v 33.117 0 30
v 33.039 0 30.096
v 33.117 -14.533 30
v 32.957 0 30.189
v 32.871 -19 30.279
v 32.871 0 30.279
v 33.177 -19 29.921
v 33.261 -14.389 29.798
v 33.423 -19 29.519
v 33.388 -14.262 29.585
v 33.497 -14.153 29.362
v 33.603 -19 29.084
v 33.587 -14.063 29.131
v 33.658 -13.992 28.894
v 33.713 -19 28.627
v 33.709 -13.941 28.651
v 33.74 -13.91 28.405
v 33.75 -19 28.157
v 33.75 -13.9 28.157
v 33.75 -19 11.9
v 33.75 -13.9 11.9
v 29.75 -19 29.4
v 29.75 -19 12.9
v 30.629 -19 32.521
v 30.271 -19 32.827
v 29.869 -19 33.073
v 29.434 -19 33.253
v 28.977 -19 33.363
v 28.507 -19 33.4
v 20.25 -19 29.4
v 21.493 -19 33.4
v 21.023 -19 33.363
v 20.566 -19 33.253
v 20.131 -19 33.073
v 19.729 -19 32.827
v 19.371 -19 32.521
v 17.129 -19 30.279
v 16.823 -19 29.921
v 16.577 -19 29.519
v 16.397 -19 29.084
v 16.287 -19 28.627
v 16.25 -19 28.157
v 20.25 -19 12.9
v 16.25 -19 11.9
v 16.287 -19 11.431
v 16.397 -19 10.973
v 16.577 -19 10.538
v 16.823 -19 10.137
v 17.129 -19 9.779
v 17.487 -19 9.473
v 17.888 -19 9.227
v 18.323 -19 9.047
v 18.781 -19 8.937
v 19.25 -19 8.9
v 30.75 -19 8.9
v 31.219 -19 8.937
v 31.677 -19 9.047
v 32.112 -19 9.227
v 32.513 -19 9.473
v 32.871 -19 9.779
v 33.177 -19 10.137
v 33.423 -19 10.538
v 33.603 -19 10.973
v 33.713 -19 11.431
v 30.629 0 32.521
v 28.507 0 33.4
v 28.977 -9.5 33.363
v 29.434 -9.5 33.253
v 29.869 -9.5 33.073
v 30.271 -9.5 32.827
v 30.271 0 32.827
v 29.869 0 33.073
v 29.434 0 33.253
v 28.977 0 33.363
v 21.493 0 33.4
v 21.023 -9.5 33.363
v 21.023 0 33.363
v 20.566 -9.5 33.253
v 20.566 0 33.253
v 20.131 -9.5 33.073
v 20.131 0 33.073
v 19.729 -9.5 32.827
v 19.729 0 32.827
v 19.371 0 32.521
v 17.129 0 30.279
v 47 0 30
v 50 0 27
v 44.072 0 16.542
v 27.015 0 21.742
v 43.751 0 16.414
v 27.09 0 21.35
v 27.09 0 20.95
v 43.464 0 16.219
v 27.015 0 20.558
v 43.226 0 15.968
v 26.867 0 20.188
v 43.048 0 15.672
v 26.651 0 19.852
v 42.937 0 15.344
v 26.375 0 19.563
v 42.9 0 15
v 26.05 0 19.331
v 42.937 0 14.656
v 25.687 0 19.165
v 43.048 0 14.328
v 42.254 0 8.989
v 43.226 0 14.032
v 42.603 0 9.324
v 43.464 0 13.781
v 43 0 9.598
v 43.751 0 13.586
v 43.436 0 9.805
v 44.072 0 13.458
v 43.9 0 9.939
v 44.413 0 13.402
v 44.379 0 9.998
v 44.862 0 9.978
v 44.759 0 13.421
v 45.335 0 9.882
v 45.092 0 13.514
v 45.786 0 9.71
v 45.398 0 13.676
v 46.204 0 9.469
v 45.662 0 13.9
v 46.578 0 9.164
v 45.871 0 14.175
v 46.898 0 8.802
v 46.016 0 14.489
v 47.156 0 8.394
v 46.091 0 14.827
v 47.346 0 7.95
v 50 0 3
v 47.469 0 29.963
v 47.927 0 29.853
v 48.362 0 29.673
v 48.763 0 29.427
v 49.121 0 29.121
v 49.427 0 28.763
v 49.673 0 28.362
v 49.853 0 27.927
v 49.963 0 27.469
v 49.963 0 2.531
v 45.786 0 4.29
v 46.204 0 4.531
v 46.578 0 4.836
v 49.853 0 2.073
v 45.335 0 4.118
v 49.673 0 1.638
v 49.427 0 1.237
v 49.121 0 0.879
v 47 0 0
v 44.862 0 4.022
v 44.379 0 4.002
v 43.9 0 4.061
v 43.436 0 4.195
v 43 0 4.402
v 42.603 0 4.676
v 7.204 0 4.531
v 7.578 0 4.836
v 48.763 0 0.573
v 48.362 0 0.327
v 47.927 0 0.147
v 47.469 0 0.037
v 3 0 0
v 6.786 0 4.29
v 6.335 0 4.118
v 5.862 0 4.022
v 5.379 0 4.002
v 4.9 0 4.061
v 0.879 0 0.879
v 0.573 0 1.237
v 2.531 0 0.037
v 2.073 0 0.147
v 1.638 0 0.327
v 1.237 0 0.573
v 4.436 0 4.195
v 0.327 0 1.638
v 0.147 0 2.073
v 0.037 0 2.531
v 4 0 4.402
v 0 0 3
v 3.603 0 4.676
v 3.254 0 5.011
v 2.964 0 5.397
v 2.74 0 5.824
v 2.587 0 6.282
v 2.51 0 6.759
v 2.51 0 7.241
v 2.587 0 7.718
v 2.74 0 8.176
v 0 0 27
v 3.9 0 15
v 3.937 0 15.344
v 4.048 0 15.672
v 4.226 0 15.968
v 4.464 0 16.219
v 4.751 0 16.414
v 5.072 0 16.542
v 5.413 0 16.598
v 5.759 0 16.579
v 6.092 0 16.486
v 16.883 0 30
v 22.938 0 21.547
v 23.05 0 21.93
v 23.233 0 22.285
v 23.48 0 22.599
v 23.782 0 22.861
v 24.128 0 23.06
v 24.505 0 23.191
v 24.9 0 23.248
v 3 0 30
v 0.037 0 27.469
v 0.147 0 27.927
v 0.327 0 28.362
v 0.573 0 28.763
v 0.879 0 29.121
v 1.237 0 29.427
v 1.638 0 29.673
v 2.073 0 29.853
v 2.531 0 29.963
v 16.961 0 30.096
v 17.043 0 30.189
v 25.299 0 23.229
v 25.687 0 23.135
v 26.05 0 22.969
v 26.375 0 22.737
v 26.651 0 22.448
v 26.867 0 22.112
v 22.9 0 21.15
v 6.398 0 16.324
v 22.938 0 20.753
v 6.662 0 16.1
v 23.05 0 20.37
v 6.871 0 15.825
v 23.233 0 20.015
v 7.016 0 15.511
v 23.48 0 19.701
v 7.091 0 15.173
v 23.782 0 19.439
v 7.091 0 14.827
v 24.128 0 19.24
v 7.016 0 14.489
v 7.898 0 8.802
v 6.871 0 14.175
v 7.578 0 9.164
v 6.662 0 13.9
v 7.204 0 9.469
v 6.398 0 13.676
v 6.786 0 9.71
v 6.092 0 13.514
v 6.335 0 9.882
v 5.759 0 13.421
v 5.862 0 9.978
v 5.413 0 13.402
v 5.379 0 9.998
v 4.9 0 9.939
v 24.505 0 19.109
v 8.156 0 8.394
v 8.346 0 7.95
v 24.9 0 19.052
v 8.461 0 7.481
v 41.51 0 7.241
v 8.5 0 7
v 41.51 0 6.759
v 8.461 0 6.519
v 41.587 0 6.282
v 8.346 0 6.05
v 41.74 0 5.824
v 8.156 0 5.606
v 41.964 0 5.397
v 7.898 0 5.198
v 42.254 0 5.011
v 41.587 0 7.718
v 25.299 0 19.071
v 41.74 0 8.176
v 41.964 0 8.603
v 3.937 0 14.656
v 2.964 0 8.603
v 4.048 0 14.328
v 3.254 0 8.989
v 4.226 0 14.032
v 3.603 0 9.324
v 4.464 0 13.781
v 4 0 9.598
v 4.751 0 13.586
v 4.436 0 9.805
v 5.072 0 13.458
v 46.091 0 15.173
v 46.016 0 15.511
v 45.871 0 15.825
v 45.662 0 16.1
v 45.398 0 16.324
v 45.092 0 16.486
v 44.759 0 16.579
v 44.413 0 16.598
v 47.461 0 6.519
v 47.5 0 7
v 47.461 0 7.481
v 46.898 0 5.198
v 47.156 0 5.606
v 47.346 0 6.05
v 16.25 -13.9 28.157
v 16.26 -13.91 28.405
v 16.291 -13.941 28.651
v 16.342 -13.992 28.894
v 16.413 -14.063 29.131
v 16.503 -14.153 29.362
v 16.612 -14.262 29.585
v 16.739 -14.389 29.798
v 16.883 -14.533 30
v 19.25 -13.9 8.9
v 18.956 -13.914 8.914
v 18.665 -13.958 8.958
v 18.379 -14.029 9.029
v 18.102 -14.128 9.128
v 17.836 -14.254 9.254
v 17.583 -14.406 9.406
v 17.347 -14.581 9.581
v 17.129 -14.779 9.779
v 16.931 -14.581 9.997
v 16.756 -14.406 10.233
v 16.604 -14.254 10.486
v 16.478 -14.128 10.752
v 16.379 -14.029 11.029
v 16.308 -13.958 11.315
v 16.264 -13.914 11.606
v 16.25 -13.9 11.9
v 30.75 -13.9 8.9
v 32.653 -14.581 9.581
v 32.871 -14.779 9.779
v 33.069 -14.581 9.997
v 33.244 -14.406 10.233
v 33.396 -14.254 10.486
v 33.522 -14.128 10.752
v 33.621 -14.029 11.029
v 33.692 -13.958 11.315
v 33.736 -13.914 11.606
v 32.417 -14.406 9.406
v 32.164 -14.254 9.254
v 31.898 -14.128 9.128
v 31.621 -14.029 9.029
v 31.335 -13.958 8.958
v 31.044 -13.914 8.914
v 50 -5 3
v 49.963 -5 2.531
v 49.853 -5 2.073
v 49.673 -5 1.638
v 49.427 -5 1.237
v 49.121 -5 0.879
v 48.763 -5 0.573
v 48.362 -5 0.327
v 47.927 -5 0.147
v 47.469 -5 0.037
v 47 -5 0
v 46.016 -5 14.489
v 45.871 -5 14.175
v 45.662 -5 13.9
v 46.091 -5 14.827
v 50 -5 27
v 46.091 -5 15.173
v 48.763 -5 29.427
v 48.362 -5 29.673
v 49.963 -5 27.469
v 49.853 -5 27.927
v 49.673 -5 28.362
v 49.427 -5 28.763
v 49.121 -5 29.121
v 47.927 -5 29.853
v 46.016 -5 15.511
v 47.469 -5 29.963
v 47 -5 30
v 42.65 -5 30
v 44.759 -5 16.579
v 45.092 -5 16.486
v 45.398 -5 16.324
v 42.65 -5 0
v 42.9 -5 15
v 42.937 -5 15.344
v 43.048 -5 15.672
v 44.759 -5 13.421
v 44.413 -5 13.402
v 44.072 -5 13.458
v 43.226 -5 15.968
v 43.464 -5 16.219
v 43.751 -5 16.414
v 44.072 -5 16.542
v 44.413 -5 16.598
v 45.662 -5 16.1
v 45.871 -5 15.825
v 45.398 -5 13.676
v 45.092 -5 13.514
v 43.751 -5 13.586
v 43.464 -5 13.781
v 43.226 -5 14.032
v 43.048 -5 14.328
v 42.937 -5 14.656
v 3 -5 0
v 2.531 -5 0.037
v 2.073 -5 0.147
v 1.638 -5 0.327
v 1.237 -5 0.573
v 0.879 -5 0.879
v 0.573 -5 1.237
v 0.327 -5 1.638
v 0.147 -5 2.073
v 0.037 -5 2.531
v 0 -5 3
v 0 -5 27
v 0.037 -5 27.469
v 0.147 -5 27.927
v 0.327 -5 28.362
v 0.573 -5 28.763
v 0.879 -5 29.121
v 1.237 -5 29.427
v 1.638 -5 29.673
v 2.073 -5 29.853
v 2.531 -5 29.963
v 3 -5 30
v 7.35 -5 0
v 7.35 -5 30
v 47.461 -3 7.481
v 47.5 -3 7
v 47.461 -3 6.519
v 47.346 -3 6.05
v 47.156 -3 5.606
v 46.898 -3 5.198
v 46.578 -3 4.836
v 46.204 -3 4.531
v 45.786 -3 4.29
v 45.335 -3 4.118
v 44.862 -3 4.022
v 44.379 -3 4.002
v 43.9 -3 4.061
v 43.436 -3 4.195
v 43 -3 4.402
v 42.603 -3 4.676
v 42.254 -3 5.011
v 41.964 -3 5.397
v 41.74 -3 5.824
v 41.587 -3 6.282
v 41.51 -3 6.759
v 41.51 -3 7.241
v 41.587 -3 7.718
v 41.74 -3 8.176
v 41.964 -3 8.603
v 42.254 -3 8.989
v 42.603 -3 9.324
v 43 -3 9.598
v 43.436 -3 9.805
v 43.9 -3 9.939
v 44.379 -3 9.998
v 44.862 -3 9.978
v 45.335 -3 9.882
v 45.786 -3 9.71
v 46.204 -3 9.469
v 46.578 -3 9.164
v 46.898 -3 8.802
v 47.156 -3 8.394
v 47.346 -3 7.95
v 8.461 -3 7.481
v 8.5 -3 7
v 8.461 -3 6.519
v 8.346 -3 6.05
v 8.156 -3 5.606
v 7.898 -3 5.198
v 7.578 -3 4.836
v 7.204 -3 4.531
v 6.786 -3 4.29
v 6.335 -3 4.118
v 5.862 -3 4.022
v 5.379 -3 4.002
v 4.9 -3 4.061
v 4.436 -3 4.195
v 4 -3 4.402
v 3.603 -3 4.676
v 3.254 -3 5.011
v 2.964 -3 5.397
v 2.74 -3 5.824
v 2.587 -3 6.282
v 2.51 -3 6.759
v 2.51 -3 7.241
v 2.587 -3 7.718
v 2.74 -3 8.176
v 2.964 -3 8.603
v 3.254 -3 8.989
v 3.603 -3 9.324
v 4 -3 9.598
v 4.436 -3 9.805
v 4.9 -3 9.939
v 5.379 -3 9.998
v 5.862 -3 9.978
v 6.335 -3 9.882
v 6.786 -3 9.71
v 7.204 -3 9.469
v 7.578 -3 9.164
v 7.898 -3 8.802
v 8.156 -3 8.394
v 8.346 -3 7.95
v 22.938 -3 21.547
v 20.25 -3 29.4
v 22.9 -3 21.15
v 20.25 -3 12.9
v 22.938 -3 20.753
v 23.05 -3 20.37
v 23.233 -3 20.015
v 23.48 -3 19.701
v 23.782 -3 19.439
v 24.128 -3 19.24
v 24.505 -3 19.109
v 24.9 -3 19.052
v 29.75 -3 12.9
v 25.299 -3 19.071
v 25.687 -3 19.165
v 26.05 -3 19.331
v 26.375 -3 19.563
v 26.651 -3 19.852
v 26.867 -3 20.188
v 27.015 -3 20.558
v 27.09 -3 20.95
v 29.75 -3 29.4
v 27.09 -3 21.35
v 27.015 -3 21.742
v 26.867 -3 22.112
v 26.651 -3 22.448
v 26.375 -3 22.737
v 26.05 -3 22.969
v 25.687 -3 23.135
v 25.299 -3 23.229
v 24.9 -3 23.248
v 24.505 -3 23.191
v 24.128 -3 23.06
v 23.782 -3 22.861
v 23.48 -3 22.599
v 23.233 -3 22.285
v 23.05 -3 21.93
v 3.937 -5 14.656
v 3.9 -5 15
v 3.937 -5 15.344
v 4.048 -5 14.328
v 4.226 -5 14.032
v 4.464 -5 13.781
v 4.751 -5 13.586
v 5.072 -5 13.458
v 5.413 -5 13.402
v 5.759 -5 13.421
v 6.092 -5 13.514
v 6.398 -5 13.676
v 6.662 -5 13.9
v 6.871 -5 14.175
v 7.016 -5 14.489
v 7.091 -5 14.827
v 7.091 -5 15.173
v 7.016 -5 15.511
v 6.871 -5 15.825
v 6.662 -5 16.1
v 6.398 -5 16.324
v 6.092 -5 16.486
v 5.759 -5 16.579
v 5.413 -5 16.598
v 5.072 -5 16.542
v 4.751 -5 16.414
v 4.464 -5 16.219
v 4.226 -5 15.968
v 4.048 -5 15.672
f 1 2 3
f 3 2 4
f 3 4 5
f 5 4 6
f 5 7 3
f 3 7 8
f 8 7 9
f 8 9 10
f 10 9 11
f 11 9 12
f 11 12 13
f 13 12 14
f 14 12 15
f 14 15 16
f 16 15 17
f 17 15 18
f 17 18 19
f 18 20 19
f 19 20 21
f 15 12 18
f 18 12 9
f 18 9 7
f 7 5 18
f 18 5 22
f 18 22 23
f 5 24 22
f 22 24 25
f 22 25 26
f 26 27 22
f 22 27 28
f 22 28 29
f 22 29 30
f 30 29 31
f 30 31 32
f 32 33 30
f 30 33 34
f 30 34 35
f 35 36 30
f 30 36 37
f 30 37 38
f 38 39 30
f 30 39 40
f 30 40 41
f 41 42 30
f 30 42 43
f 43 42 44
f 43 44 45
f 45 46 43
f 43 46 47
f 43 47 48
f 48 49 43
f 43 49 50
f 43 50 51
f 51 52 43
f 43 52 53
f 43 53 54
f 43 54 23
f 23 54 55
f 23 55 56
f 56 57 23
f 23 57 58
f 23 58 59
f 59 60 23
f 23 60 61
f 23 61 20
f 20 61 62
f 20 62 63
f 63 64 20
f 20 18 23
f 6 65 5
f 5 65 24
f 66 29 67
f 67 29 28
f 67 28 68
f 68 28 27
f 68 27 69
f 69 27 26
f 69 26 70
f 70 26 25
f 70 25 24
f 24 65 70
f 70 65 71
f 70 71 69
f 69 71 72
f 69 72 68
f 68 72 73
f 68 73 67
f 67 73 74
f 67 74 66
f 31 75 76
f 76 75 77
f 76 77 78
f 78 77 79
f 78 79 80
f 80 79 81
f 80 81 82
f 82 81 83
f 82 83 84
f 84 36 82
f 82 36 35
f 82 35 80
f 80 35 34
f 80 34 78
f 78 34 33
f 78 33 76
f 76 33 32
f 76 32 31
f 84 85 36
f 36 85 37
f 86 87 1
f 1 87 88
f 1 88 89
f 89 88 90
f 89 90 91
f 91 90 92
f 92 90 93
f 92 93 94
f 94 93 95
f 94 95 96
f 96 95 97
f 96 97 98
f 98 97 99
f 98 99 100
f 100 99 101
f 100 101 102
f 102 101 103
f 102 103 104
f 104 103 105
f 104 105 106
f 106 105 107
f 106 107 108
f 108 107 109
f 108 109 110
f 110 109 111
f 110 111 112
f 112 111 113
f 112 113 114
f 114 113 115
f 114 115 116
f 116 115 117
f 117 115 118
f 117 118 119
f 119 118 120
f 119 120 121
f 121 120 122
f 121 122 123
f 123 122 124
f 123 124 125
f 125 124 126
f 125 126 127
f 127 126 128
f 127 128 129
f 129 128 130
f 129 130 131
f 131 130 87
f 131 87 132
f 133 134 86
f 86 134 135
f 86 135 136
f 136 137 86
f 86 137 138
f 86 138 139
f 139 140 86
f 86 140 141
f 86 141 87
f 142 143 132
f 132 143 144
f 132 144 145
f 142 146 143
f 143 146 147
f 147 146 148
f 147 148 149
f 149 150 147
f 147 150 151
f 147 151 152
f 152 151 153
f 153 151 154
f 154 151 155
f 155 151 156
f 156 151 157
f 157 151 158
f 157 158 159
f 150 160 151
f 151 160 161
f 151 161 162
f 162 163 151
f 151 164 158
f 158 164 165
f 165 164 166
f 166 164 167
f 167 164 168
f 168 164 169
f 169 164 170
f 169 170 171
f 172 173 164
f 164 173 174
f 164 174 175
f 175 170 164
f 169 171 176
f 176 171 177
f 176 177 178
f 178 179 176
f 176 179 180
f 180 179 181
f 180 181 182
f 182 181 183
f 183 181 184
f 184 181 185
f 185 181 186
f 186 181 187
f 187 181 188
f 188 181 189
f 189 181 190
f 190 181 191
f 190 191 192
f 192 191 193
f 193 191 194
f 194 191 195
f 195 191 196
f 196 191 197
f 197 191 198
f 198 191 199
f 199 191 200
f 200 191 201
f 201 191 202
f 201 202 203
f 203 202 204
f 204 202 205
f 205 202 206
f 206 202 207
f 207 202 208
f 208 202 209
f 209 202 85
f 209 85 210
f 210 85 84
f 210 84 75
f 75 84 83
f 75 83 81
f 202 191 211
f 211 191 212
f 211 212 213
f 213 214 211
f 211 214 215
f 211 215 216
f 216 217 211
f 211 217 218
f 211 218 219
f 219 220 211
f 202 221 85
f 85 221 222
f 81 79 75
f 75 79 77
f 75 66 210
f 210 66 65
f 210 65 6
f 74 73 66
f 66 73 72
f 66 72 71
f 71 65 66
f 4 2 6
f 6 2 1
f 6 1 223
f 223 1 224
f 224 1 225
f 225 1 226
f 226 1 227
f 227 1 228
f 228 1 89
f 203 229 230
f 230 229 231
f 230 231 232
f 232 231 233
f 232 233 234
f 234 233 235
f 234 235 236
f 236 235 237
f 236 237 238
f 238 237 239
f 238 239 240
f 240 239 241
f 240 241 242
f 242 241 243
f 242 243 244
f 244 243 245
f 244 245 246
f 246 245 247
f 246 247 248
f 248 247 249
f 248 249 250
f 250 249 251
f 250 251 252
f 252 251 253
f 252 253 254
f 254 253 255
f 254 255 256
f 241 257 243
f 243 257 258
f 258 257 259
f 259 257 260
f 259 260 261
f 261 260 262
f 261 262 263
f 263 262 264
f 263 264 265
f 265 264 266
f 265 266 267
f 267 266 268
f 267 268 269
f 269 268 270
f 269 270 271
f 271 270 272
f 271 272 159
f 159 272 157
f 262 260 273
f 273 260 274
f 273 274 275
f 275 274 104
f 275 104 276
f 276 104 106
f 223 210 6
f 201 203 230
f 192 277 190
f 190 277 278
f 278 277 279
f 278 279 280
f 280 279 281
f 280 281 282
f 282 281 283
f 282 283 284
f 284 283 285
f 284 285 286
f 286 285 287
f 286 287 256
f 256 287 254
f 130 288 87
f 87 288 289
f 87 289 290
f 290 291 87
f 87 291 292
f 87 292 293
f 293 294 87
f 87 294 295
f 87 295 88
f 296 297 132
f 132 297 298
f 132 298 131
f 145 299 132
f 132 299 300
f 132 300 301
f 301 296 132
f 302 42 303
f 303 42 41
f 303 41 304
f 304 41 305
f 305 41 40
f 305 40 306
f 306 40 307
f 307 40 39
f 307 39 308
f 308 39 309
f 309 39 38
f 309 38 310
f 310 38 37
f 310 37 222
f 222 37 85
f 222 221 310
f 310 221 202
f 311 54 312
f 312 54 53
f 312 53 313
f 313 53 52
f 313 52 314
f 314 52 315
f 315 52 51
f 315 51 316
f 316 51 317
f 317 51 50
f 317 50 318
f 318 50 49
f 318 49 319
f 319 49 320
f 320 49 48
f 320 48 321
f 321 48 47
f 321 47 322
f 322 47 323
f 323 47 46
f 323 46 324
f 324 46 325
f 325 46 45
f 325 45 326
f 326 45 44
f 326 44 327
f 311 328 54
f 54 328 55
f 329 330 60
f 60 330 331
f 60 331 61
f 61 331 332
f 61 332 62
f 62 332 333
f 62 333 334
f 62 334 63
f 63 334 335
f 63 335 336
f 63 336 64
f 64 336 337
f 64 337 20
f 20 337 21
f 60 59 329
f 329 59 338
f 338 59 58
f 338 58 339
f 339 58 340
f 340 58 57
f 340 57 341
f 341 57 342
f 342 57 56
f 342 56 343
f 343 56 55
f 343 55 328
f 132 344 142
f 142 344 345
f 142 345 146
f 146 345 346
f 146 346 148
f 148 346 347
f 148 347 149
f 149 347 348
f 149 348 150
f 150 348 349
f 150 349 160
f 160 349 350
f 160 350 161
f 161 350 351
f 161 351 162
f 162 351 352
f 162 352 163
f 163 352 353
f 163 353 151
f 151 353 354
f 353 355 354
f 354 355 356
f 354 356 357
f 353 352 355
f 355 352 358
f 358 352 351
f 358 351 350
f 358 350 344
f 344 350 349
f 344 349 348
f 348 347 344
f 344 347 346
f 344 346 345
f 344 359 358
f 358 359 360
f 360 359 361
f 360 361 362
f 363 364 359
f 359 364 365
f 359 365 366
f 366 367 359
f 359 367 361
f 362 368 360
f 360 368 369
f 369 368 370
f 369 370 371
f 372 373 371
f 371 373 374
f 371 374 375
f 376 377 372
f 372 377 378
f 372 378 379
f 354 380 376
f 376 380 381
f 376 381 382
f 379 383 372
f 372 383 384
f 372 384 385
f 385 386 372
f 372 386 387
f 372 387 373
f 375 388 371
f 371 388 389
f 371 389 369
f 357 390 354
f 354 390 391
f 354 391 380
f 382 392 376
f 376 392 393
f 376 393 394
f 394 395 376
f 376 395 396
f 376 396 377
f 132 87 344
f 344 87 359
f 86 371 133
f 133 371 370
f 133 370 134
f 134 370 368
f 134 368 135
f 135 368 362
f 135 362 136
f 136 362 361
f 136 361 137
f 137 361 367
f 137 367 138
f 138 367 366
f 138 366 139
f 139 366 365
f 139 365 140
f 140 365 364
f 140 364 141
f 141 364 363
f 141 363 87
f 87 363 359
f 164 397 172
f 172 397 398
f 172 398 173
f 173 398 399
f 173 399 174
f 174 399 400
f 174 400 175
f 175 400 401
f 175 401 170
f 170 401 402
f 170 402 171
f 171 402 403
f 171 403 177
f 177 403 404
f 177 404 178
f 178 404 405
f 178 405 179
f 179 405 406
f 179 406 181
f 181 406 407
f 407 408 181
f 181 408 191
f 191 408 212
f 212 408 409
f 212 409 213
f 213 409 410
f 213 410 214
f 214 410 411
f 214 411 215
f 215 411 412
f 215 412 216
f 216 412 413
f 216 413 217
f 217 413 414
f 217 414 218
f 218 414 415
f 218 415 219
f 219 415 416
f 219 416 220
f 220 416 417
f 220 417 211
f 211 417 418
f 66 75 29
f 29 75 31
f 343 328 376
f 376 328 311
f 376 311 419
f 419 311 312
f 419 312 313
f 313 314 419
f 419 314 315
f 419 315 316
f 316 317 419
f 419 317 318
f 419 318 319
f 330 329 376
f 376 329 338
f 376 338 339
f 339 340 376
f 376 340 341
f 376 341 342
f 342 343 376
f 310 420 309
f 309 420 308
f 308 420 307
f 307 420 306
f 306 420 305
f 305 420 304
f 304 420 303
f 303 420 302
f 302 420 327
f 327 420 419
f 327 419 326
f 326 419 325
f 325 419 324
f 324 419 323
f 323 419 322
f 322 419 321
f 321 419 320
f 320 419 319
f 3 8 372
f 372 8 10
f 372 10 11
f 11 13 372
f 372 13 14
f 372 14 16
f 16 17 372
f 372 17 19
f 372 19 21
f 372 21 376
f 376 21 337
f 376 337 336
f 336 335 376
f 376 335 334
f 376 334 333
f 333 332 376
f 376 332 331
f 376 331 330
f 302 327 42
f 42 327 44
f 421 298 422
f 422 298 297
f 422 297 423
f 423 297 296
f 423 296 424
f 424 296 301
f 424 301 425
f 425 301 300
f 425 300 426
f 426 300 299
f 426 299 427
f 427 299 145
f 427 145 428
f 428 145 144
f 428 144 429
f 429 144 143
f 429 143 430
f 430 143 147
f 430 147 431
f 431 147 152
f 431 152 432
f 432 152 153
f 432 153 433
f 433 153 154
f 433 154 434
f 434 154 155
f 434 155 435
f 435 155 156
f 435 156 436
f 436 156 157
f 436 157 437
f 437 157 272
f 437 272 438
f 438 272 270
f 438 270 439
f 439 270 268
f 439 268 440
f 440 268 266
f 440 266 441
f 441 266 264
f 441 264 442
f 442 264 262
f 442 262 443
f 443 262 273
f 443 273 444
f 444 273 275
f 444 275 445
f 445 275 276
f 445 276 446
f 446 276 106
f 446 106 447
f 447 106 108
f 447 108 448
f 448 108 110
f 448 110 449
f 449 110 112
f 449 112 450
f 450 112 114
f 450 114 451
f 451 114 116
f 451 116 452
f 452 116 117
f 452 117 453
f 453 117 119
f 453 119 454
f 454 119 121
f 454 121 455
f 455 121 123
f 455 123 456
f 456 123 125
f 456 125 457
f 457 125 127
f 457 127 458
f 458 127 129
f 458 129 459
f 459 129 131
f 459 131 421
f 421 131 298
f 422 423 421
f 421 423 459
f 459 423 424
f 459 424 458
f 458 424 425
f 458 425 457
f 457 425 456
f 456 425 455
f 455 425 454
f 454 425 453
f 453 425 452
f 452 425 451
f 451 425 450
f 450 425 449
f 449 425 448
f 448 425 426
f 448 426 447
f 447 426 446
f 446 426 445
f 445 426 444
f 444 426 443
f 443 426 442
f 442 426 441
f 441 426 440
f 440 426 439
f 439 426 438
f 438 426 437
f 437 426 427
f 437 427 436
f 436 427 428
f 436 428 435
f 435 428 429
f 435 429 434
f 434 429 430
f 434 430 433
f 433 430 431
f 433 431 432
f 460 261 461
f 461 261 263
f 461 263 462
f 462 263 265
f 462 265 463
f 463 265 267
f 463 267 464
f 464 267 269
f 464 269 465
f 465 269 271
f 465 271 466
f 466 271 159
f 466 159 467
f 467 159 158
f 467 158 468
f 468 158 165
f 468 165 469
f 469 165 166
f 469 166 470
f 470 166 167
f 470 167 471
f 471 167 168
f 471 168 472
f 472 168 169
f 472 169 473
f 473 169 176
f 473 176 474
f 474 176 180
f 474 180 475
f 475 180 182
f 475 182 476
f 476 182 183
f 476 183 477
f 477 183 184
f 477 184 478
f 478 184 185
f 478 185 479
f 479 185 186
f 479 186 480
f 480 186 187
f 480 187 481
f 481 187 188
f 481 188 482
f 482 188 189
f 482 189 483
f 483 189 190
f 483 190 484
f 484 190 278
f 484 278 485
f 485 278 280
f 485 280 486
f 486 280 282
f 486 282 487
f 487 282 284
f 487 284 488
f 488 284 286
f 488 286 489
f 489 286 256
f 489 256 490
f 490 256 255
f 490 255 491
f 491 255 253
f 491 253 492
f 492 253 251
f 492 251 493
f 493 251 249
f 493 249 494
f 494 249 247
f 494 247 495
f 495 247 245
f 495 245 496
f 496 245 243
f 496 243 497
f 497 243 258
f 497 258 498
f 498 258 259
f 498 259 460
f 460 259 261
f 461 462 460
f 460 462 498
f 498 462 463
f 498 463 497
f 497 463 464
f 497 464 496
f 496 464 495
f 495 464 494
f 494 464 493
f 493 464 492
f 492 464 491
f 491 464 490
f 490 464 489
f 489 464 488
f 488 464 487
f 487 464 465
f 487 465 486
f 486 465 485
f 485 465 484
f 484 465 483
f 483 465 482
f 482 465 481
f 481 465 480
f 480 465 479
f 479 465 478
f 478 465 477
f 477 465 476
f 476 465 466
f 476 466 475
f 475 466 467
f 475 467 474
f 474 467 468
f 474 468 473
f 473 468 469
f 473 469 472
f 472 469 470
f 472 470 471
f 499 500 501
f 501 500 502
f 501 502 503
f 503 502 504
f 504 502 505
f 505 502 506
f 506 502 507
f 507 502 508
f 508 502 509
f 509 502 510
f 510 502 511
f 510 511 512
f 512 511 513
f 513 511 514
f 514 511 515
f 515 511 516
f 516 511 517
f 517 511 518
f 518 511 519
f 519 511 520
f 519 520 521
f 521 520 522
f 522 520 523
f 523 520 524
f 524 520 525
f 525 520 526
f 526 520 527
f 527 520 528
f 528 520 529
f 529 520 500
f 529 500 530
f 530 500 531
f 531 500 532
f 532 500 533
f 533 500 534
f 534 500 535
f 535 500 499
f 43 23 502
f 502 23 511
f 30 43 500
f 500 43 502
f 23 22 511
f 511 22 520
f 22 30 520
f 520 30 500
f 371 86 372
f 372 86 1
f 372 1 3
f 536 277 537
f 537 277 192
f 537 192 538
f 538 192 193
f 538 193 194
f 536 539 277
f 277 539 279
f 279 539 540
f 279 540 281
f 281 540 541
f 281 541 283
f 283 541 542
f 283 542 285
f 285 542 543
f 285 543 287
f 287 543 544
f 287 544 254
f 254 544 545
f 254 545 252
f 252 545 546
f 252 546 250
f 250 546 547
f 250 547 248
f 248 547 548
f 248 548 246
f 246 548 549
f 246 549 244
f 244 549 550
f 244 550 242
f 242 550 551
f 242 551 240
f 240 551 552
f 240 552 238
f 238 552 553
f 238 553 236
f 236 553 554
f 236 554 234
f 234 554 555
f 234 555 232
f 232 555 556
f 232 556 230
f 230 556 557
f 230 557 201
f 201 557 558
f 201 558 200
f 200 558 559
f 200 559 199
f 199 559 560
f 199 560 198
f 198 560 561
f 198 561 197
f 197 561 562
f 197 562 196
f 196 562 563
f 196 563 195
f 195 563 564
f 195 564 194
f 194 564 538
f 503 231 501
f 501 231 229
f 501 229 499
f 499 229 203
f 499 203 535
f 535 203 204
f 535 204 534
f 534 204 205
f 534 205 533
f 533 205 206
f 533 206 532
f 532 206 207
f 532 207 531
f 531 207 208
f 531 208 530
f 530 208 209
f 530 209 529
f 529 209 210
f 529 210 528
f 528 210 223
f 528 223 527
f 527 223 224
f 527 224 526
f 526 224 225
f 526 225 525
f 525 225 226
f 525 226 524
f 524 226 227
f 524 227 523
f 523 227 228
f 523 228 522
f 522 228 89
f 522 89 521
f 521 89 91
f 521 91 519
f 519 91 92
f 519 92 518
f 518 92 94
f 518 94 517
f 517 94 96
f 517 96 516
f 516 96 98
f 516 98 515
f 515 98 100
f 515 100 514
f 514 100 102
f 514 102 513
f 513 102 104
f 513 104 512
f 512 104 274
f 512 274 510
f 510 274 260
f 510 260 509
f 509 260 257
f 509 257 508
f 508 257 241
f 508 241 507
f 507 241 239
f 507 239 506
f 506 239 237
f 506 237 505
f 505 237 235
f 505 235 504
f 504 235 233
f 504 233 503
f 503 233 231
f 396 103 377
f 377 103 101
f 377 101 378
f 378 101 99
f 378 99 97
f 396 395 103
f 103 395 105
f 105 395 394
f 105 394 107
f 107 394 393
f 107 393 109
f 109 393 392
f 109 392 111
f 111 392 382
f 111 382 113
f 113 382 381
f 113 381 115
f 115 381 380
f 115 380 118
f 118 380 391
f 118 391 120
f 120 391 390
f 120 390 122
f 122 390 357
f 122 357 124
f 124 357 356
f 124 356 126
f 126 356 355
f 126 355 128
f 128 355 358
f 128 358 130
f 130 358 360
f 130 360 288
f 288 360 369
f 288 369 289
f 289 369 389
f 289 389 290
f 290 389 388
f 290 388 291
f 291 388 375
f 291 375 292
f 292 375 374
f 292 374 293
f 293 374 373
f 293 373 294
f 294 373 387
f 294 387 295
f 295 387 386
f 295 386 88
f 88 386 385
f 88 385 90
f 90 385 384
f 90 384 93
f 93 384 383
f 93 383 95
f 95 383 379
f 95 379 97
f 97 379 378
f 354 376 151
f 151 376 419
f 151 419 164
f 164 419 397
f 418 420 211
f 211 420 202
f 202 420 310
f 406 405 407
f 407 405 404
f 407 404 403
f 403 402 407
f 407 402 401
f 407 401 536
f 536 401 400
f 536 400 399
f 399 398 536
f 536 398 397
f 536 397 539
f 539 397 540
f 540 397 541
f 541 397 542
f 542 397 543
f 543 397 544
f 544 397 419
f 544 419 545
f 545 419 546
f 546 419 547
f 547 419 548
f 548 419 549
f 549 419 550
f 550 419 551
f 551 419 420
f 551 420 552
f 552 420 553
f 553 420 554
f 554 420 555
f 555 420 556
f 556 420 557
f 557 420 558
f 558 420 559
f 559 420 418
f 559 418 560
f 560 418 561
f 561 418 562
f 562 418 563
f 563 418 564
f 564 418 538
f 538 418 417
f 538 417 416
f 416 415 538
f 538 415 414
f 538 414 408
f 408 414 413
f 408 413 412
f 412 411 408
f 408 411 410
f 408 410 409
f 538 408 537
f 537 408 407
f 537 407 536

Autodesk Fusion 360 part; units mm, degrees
sketch "Sketch1" plane through (0, 0, 0) normal (0, 1, 0) x (1, 0, 0)
  line L0 (0, 0) -> (50, 0)
  line L1 (50, 0) -> (50, -30)
  line L2 (50, -30) -> (0, -30)
  line L3 (0, -30) -> (0, 0)
  circle A0 centre (5.5, -15) radius 1.6
  circle A1 centre (44.5, -15) radius 1.6
  circle A2 centre (25, -21.15) radius 2.1
  point P0 (25, -21.15)
  dimension "d1" = 30
  dimension "d2" = 50
  dimension "d3" = 15
  dimension "d4" = 5.5
  dimension "d5" = 5.5
  dimension "d6" = 3.2
  dimension "d9" = 25
  dimension "d10" = 21.15
  dimension "d19" = 4.2
extrude "Extrude1" add sketch "Sketch1" against normal blind 5
sketch "Sketch2" plane through (0, -5, 0) normal (0, -1, 0) x (1, 0, 0)
  circle A0 centre (44.5, 15) radius 1.6
  circle A1 centre (5.5, 15) radius 1.6
  line L0 (50, 30) -> (0, 30)
  line L1 (0, 30) -> (0, 0)
  line L2 (0, 0) -> (50, 0)
  line L3 (50, 0) -> (50, 30)
  line L4 (33.75, 33.4) -> (16.25, 33.4)
  line L5 (16.25, 33.4) -> (16.25, 8.9)
  line L6 (16.25, 8.9) -> (33.75, 8.9)
  line L7 (33.75, 8.9) -> (33.75, 33.4)
  line L8 (33.75, 33.4) -> (16.25, 8.9) construction
  line L9 (16.25, 33.4) -> (33.75, 8.9) construction
  circle A2 centre (25, 21.15) radius 2.1
  line L10 (29.75, 12.9) -> (20.25, 12.9)
  line L11 (20.25, 12.9) -> (20.25, 29.4)
  line L12 (20.25, 29.4) -> (29.75, 29.4)
  line L13 (29.75, 29.4) -> (29.75, 12.9)
  line L14 (29.75, 12.9) -> (20.25, 29.4) construction
  line L15 (20.25, 12.9) -> (29.75, 29.4) construction
  point P0 (25, 21.15)
  point P1 (25, 21.15)
  dimension "d20" = 16.5
  dimension "d21" = 9.5
  dimension "d22" = 4
  dimension "d23" = 4
extrude "Extrude2" add sketch "Sketch2" along normal blind 14 and the other way up to surface (5 mm away) contours L0 L5 L6 L7 | L0 L4 L5 L7
extrude "Extrude3" cut 1 faces at (25.0523, -5, 14.952) along direction (0, 1, 0) blind 2
sketch "Sketch3" plane through (0, 0, 0) normal (0, 1, 0) x (-1, 0, 0)
  circle A0 centre (-5.5, 15) radius 1.6
  circle A1 centre (-44.5, 15) radius 1.6
  line L0 (-33.75, 30) -> (-50, 30)
  line L1 (-50, 30) -> (-50, 0)
  line L2 (-50, 0) -> (0, 0)
  line L3 (0, 0) -> (0, 30)
  line L4 (0, 30) -> (-16.25, 30)
  line L5 (-16.25, 30) -> (-16.25, 33.4)
  line L6 (-16.25, 33.4) -> (-33.75, 33.4)
  line L7 (-33.75, 33.4) -> (-33.75, 30)
  circle A2 centre (-25, 21.15) radius 2.1
  circle A3 centre (-44.5, 7) radius 3
  circle A4 centre (-5.5, 7) radius 3
  dimension "d28" = 6
  dimension "d32" = 8
extrude "Extrude4" cut sketch "Sketch3" against normal blind 3 contours A3 | A4
chamfer "Chamfer1" distance 8.9 angle 45 3 edges at (16.25, -5, 19.45) (33.75, -5, 19.45) (25, -5, 8.9)
chamfer "Chamfer3" distance 4 angle 45 2 edges at (33.75, -9.5, 33.4) (16.25, -9.5, 33.4)
fillet "Fillet2" radius 3 10 edges at (0, -2.5, 30) (0, -2.5, 0) (50, -2.5, 30) (50, -2.5, 0) (33.75, -16.45, 8.9) (16.25, -16.45, 8.9) (16.25, -16.45, 29.4) (20.25, -9.5, 33.4) (29.75, -9.5, 33.4) (33.75, -16.45, 29.4)
equation "d3 = d1 / 2"
equation "d5 = d4"
equation "d9 = d2 / 2"
equation "d10 = ( 42.3 / 2 ) * 1 mm"
equation "d23 = d22"
